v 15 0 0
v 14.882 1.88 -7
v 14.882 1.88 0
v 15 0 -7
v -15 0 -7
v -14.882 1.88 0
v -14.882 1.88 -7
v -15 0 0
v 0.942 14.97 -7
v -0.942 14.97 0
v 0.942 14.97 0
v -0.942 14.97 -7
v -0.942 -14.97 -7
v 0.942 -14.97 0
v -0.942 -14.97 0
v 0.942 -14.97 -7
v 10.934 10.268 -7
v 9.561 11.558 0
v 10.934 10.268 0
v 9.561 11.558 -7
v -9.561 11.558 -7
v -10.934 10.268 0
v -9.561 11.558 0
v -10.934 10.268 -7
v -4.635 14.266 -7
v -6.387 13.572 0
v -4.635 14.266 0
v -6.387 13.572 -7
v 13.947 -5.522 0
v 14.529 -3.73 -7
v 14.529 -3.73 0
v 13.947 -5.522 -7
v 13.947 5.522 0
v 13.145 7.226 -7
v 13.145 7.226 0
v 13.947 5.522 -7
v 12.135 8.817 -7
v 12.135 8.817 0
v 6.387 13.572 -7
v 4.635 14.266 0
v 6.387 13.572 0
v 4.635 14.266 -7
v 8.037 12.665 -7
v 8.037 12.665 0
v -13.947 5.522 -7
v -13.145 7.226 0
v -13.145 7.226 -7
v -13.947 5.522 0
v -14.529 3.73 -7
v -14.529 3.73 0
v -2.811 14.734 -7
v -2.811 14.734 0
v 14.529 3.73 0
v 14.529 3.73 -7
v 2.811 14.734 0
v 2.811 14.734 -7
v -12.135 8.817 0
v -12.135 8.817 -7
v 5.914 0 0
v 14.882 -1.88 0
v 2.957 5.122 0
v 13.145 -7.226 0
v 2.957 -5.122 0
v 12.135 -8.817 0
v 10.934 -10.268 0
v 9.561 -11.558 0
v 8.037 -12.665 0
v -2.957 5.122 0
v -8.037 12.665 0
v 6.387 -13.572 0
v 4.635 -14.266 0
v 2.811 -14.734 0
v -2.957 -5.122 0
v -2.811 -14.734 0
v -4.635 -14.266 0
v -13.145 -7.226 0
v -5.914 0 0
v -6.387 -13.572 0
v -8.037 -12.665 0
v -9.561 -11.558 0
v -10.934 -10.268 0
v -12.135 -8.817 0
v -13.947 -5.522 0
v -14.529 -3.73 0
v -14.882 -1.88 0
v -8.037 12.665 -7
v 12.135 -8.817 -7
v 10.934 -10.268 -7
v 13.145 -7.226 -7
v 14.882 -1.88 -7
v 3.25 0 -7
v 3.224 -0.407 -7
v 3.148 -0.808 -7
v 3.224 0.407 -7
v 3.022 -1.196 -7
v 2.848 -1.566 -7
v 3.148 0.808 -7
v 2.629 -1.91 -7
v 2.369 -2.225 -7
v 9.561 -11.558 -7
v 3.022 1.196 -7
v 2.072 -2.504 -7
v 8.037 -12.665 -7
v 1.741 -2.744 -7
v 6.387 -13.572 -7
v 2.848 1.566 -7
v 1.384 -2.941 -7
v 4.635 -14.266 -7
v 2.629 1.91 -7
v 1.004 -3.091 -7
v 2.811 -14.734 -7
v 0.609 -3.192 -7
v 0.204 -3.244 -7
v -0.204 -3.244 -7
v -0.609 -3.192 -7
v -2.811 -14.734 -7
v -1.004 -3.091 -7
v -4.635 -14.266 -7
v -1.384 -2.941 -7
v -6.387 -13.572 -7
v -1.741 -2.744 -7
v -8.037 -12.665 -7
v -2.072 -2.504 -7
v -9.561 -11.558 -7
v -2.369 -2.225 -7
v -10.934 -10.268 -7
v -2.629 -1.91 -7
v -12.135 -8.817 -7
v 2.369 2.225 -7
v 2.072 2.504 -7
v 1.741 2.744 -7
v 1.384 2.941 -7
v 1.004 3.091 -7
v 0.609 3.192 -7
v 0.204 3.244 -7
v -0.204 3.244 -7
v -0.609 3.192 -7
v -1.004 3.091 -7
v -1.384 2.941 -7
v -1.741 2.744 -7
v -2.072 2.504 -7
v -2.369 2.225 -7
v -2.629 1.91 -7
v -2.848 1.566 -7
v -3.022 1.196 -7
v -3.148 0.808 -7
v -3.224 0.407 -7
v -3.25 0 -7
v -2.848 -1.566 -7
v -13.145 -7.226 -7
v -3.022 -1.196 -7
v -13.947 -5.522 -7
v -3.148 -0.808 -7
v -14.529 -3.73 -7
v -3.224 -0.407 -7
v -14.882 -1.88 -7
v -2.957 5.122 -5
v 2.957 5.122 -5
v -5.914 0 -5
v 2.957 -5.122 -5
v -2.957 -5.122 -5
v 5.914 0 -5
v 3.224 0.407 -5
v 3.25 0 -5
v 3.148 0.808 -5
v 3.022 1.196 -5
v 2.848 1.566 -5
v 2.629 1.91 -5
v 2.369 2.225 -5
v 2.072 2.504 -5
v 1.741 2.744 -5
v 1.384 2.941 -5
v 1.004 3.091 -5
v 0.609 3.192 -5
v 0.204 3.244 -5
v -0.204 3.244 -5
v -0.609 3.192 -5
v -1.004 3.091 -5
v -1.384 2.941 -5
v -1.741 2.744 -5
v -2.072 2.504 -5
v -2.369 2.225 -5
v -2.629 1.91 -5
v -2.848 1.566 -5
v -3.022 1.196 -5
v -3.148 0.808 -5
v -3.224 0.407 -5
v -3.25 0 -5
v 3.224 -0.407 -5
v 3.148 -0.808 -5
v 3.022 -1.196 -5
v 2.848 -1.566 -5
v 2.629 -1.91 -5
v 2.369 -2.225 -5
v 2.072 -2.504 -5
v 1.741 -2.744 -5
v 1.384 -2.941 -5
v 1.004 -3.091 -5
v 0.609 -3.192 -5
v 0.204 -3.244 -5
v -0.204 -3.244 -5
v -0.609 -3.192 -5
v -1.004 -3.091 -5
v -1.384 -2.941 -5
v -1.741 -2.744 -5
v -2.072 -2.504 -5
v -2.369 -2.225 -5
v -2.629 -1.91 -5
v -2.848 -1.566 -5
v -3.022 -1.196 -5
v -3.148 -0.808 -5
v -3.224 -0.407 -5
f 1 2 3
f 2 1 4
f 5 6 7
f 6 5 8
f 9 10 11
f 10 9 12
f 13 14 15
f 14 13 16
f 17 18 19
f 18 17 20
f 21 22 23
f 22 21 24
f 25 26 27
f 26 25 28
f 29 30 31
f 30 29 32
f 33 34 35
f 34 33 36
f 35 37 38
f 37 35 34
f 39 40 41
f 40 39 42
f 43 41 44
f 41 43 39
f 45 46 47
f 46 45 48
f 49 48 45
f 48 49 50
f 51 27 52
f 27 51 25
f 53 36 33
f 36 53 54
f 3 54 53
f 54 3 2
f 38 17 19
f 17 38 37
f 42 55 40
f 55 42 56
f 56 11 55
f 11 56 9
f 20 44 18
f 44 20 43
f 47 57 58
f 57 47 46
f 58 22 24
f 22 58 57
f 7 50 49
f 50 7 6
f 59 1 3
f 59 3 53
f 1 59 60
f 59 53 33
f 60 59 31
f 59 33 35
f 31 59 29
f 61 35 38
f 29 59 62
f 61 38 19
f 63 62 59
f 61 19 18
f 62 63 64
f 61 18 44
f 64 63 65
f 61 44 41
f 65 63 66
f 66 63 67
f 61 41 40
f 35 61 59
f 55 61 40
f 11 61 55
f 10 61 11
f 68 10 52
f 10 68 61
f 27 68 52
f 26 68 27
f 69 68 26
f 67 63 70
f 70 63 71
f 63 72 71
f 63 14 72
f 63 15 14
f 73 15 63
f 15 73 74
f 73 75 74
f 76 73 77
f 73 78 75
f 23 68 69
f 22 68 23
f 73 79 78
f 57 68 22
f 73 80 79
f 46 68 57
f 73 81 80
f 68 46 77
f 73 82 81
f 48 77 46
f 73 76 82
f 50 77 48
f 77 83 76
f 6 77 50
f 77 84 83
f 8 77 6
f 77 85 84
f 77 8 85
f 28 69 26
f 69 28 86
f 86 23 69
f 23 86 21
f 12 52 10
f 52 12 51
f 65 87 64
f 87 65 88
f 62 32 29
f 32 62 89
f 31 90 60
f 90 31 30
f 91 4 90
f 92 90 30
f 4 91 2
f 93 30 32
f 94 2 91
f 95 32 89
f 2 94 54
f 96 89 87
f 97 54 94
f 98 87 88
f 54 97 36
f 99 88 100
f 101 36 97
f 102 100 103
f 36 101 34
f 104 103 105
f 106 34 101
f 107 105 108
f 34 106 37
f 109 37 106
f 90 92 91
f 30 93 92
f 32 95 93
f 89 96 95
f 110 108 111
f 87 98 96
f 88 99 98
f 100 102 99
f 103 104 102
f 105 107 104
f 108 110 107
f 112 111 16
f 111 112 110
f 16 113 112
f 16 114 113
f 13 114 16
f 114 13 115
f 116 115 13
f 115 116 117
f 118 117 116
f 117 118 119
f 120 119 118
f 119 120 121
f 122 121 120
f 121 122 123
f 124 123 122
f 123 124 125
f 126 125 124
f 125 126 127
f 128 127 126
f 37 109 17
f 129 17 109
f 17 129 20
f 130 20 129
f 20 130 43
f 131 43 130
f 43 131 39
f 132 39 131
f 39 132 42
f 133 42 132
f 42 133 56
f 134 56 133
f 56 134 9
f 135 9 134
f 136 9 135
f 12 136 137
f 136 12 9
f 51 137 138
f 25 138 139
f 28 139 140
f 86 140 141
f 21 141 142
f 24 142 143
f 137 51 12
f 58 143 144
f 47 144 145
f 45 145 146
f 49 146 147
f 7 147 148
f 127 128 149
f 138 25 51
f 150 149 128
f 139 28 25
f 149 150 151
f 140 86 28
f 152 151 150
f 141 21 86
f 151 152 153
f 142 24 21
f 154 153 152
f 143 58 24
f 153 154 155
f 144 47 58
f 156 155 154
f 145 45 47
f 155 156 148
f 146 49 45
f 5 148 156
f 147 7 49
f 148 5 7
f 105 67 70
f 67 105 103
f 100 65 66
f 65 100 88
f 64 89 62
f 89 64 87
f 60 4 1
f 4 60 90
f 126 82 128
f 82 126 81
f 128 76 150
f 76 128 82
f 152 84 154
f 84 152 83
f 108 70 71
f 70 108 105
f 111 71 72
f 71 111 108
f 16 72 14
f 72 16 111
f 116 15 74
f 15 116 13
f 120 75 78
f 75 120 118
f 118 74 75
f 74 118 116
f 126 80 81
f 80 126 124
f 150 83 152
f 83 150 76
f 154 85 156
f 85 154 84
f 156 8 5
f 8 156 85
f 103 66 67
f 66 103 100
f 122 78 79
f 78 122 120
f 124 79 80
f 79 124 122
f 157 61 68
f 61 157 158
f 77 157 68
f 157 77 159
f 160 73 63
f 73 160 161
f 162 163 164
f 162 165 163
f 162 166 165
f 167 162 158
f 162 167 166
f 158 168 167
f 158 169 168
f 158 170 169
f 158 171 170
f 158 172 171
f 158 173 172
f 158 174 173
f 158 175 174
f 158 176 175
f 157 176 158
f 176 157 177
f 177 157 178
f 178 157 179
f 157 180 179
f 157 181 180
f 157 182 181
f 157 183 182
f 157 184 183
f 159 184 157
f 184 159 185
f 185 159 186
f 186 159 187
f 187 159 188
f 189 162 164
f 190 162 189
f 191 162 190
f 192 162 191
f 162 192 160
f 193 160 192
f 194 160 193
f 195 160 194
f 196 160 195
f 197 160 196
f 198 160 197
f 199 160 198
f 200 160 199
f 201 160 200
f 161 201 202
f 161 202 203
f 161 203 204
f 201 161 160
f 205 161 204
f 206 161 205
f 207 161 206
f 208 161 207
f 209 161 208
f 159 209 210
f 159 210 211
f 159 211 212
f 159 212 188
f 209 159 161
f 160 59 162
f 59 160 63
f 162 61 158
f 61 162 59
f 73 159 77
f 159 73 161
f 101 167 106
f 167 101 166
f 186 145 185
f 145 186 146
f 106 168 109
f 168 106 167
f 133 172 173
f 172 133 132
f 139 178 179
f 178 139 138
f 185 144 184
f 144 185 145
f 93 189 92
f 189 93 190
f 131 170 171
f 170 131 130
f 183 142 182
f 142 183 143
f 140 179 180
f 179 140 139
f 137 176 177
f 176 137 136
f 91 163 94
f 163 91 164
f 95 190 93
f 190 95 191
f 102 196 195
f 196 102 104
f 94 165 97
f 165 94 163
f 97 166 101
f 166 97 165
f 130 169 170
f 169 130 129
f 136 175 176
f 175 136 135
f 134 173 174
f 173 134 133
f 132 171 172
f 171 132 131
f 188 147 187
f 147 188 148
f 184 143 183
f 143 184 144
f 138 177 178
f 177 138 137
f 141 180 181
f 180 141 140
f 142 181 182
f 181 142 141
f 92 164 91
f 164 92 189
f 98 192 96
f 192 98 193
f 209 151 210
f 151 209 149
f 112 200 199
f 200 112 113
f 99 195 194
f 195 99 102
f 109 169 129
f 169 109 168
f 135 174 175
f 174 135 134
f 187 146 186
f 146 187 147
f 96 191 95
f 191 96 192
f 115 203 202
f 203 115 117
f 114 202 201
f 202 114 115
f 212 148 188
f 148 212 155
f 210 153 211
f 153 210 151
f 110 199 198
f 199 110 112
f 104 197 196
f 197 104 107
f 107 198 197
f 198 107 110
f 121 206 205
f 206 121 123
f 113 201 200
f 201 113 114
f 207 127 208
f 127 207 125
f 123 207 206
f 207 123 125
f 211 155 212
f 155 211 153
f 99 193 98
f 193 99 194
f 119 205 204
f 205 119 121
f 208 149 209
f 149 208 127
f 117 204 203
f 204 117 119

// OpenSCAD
$fn = 50;


difference() {
	union() {
		translate(v = [0, 0, -7.0000000000]) {
			cylinder(h = 7.0000000000, r = 15.0000000000);
		}
		#translate(v = [0, 0, -8.5000000000]) {
			cylinder(h = 8.5000000000, r = 2.8750000000);
		}
	}
	union() {
		translate(v = [0, 0, 0]) {
			rotate(a = [0, 0, 0]) {
				difference() {
					union() {
						translate(v = [0, 0, -5]) {
							linear_extrude(height = 5) {
								polygon(points = [[5.9142500000, 0.0000000000], [2.9571250000, 5.1218907443], [-2.9571250000, 5.1218907443], [-5.9142500000, 0.0000000000], [-2.9571250000, -5.1218907443], [2.9571250000, -5.1218907443]]);
							}
						}
					}
					union();
				}
			}
		}
		#translate(v = [0, 0, -100.0000000000]) {
			cylinder(h = 200, r = 3.2500000000);
		}
	}
}
